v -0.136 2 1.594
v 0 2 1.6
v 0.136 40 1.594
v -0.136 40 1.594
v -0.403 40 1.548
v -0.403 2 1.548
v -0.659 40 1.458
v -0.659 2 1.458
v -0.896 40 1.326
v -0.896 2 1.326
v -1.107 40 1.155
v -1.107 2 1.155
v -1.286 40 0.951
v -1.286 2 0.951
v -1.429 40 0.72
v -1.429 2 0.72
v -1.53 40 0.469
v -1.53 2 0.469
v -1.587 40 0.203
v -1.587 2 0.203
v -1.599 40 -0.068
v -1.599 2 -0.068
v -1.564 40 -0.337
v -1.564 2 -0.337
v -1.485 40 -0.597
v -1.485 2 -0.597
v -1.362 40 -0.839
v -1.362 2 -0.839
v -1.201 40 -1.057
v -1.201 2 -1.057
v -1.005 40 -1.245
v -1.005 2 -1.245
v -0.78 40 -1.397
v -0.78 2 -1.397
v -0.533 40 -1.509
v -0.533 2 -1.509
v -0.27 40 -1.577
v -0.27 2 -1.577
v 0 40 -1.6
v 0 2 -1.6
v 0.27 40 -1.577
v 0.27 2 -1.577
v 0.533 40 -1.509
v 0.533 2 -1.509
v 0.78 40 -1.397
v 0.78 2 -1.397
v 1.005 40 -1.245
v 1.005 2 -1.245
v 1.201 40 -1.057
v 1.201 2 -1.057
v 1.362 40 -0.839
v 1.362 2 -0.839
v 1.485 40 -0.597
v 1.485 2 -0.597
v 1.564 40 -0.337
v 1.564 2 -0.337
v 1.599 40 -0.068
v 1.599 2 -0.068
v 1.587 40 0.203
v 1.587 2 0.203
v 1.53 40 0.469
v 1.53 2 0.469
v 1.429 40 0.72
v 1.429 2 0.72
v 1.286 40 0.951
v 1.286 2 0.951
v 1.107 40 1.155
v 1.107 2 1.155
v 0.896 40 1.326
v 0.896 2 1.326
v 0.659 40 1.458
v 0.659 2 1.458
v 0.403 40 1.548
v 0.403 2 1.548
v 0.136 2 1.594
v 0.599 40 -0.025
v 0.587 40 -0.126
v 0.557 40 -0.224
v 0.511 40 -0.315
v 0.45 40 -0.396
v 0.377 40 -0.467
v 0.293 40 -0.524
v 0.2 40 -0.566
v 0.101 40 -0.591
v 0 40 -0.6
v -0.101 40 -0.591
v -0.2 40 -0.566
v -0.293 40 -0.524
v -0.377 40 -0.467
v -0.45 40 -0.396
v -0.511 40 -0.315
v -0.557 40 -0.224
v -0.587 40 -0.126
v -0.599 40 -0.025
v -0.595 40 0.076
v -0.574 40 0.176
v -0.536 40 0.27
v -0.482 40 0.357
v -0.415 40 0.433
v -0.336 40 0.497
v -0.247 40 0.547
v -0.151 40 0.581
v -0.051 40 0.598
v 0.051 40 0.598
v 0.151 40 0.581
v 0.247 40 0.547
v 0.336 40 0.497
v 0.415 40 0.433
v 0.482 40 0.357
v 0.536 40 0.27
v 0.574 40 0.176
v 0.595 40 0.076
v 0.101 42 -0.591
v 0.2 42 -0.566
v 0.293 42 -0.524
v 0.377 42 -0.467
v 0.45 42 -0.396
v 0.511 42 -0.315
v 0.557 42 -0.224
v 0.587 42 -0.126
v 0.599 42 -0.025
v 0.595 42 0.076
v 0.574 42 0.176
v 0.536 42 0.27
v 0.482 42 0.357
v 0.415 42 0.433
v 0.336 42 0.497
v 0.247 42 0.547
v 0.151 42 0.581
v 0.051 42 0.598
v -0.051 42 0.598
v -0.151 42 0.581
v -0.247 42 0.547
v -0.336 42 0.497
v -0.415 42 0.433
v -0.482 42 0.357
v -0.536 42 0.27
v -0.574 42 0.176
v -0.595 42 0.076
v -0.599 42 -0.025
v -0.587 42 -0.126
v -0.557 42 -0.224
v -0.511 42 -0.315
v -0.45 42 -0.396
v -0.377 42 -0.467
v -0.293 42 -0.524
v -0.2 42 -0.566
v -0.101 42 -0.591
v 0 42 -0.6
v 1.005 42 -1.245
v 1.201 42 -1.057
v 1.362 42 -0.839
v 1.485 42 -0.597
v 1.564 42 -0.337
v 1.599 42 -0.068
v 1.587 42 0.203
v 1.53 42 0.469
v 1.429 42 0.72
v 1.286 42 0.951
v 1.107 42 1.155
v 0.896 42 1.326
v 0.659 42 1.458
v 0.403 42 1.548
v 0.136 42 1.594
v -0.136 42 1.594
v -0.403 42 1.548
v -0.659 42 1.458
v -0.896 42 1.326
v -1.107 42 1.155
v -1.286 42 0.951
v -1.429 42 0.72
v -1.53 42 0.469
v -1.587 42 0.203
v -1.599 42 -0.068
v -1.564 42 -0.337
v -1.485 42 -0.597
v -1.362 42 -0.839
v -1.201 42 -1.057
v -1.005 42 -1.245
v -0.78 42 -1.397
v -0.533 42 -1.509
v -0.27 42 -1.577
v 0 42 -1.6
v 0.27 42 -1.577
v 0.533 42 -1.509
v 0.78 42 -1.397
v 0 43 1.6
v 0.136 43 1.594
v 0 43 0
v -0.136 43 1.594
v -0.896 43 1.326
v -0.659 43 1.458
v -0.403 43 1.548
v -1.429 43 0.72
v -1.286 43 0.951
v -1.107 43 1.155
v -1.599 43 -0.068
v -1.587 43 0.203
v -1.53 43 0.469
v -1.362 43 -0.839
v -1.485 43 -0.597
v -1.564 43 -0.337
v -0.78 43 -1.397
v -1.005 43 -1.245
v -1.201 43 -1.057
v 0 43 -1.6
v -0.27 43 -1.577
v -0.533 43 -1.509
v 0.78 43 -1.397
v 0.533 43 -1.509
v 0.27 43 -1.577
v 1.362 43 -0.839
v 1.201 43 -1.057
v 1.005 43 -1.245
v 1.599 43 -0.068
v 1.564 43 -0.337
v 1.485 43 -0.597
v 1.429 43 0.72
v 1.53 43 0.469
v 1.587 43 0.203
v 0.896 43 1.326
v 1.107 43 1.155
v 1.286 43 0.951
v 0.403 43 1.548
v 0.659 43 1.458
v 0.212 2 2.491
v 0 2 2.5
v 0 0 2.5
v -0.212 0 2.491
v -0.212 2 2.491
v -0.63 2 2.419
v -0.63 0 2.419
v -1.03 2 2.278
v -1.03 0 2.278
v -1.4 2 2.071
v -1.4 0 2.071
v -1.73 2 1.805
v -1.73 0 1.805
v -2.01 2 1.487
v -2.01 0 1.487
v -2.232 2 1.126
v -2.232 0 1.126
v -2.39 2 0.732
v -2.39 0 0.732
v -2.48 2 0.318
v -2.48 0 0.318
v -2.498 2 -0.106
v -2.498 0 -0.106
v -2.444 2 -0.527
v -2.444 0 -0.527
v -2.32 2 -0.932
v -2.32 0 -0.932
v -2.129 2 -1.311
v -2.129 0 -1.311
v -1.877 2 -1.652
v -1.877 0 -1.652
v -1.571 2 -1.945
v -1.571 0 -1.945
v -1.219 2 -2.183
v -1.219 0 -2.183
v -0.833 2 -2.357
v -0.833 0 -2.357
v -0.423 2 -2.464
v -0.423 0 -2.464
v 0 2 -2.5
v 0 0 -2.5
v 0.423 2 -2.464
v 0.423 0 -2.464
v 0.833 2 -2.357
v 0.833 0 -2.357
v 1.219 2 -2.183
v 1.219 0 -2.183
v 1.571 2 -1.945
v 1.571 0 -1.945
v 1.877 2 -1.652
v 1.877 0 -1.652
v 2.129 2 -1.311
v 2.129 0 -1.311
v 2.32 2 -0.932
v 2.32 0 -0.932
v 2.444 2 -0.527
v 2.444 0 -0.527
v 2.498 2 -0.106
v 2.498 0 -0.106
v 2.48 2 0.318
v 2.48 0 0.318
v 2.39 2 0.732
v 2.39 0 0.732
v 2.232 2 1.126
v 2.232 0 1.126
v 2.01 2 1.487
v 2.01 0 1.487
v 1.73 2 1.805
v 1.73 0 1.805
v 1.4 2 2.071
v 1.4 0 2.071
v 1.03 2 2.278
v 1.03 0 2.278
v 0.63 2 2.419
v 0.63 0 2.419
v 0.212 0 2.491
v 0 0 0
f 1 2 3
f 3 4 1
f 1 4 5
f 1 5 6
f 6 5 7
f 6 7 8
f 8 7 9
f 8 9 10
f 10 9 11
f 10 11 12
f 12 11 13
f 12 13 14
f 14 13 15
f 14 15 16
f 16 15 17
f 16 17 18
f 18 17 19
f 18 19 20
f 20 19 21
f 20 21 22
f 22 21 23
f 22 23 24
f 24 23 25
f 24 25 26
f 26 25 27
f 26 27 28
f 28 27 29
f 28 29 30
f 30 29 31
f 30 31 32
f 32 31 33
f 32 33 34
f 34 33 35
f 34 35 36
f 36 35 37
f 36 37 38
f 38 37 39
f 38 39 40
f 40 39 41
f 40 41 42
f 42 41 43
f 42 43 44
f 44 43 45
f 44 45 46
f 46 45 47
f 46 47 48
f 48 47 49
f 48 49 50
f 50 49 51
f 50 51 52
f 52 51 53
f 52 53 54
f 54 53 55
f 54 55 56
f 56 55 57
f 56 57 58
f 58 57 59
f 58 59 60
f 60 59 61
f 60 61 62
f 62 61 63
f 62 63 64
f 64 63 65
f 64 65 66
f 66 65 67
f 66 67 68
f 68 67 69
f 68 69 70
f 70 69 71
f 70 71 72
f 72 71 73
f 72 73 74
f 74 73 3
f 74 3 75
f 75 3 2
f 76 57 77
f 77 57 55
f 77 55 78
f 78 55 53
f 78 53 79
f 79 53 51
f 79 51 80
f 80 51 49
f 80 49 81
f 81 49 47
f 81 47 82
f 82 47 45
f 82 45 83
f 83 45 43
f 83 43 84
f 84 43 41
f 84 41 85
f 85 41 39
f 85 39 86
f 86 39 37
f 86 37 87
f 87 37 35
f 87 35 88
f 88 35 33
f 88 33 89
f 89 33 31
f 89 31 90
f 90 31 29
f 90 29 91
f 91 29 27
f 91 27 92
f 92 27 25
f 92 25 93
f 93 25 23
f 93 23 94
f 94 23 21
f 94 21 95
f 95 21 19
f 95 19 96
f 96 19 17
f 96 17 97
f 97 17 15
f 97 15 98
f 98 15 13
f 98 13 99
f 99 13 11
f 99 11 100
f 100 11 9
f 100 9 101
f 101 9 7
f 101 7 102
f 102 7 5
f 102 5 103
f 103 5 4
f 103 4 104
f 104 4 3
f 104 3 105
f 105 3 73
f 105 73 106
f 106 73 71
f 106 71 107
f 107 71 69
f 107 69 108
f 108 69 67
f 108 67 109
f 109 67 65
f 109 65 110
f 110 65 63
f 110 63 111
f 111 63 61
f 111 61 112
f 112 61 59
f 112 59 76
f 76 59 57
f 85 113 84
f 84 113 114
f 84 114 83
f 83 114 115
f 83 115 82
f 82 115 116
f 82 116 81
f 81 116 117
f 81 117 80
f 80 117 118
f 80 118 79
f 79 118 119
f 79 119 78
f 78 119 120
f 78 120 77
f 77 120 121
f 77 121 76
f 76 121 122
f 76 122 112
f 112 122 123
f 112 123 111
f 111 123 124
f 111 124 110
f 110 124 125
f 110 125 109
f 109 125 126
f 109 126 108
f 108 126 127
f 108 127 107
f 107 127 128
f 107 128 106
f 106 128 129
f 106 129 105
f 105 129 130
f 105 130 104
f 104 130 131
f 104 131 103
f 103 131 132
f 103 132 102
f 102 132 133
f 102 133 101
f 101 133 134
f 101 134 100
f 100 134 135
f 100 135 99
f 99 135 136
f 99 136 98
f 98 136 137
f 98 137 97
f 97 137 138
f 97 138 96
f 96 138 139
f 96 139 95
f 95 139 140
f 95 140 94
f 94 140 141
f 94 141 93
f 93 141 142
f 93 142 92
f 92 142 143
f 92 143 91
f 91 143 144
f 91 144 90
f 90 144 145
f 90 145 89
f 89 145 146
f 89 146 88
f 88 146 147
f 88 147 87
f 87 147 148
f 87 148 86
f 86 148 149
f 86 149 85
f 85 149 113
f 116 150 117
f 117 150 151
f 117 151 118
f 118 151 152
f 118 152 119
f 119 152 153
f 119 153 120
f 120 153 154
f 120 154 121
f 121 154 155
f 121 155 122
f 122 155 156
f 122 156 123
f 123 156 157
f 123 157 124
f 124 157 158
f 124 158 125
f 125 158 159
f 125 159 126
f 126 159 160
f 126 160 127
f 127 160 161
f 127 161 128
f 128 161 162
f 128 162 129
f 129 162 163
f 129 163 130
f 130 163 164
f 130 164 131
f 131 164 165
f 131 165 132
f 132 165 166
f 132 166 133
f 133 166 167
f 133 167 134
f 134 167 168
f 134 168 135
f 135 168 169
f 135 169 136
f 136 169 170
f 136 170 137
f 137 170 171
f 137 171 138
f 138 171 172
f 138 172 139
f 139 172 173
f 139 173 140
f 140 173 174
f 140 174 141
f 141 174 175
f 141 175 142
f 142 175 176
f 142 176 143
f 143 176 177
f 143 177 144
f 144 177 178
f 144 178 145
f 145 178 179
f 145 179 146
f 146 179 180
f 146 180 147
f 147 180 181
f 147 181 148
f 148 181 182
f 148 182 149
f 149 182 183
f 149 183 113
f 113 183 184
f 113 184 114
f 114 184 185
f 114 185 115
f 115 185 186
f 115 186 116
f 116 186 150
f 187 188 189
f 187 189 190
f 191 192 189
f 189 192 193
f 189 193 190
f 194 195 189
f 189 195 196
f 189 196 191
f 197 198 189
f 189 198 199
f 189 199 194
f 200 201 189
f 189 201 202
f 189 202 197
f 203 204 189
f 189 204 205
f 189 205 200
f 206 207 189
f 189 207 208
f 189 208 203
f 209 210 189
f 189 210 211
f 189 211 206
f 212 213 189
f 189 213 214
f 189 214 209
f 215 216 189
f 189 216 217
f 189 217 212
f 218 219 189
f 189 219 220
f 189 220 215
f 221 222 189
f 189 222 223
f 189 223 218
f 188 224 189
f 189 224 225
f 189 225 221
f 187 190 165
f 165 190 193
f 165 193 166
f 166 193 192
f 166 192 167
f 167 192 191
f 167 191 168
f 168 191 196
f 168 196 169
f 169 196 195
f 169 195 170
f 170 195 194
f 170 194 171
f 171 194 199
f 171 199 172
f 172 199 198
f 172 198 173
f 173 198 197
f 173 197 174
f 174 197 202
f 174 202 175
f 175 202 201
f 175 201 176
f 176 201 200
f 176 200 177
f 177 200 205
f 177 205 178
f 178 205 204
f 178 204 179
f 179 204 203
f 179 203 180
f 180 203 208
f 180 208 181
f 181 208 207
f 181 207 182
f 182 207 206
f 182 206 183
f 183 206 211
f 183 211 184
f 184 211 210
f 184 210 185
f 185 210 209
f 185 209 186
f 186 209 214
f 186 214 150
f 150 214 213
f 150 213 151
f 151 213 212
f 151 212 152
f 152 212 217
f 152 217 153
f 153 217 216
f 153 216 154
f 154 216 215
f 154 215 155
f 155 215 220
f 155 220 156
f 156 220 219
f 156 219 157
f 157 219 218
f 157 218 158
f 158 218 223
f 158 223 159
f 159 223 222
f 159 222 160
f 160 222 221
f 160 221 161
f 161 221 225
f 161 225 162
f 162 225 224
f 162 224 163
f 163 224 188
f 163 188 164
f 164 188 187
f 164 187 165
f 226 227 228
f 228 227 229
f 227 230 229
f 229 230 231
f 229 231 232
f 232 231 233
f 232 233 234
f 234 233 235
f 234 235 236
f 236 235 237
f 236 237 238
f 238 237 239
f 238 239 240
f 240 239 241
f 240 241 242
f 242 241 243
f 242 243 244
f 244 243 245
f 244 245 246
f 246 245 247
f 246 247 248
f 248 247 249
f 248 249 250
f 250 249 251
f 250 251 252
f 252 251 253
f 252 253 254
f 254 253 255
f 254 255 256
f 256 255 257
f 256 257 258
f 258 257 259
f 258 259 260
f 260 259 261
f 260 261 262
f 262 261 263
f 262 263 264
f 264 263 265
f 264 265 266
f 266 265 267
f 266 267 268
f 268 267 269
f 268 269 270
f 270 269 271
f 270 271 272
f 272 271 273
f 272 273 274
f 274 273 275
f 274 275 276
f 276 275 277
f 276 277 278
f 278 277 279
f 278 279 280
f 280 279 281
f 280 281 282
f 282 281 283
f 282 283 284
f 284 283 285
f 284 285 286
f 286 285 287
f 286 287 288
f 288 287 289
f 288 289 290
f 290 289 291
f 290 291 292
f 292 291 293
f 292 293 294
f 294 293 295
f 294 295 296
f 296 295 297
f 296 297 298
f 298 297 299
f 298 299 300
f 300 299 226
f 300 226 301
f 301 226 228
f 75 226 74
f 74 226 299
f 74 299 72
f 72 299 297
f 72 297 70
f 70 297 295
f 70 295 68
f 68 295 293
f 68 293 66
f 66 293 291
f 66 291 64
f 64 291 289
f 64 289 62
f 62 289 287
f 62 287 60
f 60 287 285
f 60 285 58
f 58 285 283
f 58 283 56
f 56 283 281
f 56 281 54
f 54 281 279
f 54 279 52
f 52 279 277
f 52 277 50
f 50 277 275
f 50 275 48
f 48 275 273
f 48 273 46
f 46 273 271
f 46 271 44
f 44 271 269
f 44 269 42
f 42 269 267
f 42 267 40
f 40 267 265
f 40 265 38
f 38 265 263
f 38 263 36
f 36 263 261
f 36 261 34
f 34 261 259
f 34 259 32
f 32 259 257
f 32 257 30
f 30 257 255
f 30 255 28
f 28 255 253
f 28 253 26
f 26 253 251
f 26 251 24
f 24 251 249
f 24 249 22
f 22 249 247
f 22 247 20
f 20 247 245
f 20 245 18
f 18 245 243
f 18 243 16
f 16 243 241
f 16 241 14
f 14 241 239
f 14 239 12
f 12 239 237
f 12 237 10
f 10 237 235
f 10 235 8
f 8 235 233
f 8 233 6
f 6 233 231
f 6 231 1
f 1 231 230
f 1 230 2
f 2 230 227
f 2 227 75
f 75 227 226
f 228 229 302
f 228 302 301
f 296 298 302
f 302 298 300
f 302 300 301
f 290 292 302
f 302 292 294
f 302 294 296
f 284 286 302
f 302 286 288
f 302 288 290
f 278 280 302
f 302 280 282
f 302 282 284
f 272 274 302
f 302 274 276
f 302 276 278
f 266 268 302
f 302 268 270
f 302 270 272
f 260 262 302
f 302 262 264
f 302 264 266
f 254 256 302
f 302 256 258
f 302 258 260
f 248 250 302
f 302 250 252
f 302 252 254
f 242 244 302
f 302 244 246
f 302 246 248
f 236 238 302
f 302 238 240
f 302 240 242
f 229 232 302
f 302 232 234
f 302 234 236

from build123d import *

# Parameters (mm, degrees)
SKETCH1_R           = 1.6
BOSS_EXTRUDE1_DEPTH = 43
SKETCH2_W           = 1
SKETCH2_H           = 2
SKETCH3_R           = 2.5
BOSS_EXTRUDE2_DEPTH = 2


with BuildPart() as part:
    # Sketch1 → Boss-Extrude1 (new body)
    with BuildSketch(Plane(origin=(0, 0, 0), x_dir=(1, 0, 0), z_dir=(0, 1, 0))):
        with Locations(Location((0, 0, 0), (0, 0, 270))):
            Circle(SKETCH1_R)
    extrude(amount=BOSS_EXTRUDE1_DEPTH)

    # Sketch2 → Cut-Revolve1 (revolve, cut)
    with BuildSketch(Plane.XY, mode=Mode.PRIVATE) as cut_revolve1_sk:
        with Locations((1.1, 41)):
            Rectangle(SKETCH2_W, SKETCH2_H)
    revolve(cut_revolve1_sk.sketch.rotate(Axis((0, 0, 0), (0, 1, 0)), 90), axis=Axis((0, 0, 0), (0, 1, 0)), mode=Mode.SUBTRACT)

    # Sketch3 → Boss-Extrude2 (add)
    with BuildSketch(Plane(origin=(0, 0, 0), x_dir=(1, 0, 0), z_dir=(0, 1, 0))):
        with Locations(Location((0, 0, 0), (0, 0, 270))):
            Circle(SKETCH3_R)
    extrude(amount=BOSS_EXTRUDE2_DEPTH)


solid = part.part
